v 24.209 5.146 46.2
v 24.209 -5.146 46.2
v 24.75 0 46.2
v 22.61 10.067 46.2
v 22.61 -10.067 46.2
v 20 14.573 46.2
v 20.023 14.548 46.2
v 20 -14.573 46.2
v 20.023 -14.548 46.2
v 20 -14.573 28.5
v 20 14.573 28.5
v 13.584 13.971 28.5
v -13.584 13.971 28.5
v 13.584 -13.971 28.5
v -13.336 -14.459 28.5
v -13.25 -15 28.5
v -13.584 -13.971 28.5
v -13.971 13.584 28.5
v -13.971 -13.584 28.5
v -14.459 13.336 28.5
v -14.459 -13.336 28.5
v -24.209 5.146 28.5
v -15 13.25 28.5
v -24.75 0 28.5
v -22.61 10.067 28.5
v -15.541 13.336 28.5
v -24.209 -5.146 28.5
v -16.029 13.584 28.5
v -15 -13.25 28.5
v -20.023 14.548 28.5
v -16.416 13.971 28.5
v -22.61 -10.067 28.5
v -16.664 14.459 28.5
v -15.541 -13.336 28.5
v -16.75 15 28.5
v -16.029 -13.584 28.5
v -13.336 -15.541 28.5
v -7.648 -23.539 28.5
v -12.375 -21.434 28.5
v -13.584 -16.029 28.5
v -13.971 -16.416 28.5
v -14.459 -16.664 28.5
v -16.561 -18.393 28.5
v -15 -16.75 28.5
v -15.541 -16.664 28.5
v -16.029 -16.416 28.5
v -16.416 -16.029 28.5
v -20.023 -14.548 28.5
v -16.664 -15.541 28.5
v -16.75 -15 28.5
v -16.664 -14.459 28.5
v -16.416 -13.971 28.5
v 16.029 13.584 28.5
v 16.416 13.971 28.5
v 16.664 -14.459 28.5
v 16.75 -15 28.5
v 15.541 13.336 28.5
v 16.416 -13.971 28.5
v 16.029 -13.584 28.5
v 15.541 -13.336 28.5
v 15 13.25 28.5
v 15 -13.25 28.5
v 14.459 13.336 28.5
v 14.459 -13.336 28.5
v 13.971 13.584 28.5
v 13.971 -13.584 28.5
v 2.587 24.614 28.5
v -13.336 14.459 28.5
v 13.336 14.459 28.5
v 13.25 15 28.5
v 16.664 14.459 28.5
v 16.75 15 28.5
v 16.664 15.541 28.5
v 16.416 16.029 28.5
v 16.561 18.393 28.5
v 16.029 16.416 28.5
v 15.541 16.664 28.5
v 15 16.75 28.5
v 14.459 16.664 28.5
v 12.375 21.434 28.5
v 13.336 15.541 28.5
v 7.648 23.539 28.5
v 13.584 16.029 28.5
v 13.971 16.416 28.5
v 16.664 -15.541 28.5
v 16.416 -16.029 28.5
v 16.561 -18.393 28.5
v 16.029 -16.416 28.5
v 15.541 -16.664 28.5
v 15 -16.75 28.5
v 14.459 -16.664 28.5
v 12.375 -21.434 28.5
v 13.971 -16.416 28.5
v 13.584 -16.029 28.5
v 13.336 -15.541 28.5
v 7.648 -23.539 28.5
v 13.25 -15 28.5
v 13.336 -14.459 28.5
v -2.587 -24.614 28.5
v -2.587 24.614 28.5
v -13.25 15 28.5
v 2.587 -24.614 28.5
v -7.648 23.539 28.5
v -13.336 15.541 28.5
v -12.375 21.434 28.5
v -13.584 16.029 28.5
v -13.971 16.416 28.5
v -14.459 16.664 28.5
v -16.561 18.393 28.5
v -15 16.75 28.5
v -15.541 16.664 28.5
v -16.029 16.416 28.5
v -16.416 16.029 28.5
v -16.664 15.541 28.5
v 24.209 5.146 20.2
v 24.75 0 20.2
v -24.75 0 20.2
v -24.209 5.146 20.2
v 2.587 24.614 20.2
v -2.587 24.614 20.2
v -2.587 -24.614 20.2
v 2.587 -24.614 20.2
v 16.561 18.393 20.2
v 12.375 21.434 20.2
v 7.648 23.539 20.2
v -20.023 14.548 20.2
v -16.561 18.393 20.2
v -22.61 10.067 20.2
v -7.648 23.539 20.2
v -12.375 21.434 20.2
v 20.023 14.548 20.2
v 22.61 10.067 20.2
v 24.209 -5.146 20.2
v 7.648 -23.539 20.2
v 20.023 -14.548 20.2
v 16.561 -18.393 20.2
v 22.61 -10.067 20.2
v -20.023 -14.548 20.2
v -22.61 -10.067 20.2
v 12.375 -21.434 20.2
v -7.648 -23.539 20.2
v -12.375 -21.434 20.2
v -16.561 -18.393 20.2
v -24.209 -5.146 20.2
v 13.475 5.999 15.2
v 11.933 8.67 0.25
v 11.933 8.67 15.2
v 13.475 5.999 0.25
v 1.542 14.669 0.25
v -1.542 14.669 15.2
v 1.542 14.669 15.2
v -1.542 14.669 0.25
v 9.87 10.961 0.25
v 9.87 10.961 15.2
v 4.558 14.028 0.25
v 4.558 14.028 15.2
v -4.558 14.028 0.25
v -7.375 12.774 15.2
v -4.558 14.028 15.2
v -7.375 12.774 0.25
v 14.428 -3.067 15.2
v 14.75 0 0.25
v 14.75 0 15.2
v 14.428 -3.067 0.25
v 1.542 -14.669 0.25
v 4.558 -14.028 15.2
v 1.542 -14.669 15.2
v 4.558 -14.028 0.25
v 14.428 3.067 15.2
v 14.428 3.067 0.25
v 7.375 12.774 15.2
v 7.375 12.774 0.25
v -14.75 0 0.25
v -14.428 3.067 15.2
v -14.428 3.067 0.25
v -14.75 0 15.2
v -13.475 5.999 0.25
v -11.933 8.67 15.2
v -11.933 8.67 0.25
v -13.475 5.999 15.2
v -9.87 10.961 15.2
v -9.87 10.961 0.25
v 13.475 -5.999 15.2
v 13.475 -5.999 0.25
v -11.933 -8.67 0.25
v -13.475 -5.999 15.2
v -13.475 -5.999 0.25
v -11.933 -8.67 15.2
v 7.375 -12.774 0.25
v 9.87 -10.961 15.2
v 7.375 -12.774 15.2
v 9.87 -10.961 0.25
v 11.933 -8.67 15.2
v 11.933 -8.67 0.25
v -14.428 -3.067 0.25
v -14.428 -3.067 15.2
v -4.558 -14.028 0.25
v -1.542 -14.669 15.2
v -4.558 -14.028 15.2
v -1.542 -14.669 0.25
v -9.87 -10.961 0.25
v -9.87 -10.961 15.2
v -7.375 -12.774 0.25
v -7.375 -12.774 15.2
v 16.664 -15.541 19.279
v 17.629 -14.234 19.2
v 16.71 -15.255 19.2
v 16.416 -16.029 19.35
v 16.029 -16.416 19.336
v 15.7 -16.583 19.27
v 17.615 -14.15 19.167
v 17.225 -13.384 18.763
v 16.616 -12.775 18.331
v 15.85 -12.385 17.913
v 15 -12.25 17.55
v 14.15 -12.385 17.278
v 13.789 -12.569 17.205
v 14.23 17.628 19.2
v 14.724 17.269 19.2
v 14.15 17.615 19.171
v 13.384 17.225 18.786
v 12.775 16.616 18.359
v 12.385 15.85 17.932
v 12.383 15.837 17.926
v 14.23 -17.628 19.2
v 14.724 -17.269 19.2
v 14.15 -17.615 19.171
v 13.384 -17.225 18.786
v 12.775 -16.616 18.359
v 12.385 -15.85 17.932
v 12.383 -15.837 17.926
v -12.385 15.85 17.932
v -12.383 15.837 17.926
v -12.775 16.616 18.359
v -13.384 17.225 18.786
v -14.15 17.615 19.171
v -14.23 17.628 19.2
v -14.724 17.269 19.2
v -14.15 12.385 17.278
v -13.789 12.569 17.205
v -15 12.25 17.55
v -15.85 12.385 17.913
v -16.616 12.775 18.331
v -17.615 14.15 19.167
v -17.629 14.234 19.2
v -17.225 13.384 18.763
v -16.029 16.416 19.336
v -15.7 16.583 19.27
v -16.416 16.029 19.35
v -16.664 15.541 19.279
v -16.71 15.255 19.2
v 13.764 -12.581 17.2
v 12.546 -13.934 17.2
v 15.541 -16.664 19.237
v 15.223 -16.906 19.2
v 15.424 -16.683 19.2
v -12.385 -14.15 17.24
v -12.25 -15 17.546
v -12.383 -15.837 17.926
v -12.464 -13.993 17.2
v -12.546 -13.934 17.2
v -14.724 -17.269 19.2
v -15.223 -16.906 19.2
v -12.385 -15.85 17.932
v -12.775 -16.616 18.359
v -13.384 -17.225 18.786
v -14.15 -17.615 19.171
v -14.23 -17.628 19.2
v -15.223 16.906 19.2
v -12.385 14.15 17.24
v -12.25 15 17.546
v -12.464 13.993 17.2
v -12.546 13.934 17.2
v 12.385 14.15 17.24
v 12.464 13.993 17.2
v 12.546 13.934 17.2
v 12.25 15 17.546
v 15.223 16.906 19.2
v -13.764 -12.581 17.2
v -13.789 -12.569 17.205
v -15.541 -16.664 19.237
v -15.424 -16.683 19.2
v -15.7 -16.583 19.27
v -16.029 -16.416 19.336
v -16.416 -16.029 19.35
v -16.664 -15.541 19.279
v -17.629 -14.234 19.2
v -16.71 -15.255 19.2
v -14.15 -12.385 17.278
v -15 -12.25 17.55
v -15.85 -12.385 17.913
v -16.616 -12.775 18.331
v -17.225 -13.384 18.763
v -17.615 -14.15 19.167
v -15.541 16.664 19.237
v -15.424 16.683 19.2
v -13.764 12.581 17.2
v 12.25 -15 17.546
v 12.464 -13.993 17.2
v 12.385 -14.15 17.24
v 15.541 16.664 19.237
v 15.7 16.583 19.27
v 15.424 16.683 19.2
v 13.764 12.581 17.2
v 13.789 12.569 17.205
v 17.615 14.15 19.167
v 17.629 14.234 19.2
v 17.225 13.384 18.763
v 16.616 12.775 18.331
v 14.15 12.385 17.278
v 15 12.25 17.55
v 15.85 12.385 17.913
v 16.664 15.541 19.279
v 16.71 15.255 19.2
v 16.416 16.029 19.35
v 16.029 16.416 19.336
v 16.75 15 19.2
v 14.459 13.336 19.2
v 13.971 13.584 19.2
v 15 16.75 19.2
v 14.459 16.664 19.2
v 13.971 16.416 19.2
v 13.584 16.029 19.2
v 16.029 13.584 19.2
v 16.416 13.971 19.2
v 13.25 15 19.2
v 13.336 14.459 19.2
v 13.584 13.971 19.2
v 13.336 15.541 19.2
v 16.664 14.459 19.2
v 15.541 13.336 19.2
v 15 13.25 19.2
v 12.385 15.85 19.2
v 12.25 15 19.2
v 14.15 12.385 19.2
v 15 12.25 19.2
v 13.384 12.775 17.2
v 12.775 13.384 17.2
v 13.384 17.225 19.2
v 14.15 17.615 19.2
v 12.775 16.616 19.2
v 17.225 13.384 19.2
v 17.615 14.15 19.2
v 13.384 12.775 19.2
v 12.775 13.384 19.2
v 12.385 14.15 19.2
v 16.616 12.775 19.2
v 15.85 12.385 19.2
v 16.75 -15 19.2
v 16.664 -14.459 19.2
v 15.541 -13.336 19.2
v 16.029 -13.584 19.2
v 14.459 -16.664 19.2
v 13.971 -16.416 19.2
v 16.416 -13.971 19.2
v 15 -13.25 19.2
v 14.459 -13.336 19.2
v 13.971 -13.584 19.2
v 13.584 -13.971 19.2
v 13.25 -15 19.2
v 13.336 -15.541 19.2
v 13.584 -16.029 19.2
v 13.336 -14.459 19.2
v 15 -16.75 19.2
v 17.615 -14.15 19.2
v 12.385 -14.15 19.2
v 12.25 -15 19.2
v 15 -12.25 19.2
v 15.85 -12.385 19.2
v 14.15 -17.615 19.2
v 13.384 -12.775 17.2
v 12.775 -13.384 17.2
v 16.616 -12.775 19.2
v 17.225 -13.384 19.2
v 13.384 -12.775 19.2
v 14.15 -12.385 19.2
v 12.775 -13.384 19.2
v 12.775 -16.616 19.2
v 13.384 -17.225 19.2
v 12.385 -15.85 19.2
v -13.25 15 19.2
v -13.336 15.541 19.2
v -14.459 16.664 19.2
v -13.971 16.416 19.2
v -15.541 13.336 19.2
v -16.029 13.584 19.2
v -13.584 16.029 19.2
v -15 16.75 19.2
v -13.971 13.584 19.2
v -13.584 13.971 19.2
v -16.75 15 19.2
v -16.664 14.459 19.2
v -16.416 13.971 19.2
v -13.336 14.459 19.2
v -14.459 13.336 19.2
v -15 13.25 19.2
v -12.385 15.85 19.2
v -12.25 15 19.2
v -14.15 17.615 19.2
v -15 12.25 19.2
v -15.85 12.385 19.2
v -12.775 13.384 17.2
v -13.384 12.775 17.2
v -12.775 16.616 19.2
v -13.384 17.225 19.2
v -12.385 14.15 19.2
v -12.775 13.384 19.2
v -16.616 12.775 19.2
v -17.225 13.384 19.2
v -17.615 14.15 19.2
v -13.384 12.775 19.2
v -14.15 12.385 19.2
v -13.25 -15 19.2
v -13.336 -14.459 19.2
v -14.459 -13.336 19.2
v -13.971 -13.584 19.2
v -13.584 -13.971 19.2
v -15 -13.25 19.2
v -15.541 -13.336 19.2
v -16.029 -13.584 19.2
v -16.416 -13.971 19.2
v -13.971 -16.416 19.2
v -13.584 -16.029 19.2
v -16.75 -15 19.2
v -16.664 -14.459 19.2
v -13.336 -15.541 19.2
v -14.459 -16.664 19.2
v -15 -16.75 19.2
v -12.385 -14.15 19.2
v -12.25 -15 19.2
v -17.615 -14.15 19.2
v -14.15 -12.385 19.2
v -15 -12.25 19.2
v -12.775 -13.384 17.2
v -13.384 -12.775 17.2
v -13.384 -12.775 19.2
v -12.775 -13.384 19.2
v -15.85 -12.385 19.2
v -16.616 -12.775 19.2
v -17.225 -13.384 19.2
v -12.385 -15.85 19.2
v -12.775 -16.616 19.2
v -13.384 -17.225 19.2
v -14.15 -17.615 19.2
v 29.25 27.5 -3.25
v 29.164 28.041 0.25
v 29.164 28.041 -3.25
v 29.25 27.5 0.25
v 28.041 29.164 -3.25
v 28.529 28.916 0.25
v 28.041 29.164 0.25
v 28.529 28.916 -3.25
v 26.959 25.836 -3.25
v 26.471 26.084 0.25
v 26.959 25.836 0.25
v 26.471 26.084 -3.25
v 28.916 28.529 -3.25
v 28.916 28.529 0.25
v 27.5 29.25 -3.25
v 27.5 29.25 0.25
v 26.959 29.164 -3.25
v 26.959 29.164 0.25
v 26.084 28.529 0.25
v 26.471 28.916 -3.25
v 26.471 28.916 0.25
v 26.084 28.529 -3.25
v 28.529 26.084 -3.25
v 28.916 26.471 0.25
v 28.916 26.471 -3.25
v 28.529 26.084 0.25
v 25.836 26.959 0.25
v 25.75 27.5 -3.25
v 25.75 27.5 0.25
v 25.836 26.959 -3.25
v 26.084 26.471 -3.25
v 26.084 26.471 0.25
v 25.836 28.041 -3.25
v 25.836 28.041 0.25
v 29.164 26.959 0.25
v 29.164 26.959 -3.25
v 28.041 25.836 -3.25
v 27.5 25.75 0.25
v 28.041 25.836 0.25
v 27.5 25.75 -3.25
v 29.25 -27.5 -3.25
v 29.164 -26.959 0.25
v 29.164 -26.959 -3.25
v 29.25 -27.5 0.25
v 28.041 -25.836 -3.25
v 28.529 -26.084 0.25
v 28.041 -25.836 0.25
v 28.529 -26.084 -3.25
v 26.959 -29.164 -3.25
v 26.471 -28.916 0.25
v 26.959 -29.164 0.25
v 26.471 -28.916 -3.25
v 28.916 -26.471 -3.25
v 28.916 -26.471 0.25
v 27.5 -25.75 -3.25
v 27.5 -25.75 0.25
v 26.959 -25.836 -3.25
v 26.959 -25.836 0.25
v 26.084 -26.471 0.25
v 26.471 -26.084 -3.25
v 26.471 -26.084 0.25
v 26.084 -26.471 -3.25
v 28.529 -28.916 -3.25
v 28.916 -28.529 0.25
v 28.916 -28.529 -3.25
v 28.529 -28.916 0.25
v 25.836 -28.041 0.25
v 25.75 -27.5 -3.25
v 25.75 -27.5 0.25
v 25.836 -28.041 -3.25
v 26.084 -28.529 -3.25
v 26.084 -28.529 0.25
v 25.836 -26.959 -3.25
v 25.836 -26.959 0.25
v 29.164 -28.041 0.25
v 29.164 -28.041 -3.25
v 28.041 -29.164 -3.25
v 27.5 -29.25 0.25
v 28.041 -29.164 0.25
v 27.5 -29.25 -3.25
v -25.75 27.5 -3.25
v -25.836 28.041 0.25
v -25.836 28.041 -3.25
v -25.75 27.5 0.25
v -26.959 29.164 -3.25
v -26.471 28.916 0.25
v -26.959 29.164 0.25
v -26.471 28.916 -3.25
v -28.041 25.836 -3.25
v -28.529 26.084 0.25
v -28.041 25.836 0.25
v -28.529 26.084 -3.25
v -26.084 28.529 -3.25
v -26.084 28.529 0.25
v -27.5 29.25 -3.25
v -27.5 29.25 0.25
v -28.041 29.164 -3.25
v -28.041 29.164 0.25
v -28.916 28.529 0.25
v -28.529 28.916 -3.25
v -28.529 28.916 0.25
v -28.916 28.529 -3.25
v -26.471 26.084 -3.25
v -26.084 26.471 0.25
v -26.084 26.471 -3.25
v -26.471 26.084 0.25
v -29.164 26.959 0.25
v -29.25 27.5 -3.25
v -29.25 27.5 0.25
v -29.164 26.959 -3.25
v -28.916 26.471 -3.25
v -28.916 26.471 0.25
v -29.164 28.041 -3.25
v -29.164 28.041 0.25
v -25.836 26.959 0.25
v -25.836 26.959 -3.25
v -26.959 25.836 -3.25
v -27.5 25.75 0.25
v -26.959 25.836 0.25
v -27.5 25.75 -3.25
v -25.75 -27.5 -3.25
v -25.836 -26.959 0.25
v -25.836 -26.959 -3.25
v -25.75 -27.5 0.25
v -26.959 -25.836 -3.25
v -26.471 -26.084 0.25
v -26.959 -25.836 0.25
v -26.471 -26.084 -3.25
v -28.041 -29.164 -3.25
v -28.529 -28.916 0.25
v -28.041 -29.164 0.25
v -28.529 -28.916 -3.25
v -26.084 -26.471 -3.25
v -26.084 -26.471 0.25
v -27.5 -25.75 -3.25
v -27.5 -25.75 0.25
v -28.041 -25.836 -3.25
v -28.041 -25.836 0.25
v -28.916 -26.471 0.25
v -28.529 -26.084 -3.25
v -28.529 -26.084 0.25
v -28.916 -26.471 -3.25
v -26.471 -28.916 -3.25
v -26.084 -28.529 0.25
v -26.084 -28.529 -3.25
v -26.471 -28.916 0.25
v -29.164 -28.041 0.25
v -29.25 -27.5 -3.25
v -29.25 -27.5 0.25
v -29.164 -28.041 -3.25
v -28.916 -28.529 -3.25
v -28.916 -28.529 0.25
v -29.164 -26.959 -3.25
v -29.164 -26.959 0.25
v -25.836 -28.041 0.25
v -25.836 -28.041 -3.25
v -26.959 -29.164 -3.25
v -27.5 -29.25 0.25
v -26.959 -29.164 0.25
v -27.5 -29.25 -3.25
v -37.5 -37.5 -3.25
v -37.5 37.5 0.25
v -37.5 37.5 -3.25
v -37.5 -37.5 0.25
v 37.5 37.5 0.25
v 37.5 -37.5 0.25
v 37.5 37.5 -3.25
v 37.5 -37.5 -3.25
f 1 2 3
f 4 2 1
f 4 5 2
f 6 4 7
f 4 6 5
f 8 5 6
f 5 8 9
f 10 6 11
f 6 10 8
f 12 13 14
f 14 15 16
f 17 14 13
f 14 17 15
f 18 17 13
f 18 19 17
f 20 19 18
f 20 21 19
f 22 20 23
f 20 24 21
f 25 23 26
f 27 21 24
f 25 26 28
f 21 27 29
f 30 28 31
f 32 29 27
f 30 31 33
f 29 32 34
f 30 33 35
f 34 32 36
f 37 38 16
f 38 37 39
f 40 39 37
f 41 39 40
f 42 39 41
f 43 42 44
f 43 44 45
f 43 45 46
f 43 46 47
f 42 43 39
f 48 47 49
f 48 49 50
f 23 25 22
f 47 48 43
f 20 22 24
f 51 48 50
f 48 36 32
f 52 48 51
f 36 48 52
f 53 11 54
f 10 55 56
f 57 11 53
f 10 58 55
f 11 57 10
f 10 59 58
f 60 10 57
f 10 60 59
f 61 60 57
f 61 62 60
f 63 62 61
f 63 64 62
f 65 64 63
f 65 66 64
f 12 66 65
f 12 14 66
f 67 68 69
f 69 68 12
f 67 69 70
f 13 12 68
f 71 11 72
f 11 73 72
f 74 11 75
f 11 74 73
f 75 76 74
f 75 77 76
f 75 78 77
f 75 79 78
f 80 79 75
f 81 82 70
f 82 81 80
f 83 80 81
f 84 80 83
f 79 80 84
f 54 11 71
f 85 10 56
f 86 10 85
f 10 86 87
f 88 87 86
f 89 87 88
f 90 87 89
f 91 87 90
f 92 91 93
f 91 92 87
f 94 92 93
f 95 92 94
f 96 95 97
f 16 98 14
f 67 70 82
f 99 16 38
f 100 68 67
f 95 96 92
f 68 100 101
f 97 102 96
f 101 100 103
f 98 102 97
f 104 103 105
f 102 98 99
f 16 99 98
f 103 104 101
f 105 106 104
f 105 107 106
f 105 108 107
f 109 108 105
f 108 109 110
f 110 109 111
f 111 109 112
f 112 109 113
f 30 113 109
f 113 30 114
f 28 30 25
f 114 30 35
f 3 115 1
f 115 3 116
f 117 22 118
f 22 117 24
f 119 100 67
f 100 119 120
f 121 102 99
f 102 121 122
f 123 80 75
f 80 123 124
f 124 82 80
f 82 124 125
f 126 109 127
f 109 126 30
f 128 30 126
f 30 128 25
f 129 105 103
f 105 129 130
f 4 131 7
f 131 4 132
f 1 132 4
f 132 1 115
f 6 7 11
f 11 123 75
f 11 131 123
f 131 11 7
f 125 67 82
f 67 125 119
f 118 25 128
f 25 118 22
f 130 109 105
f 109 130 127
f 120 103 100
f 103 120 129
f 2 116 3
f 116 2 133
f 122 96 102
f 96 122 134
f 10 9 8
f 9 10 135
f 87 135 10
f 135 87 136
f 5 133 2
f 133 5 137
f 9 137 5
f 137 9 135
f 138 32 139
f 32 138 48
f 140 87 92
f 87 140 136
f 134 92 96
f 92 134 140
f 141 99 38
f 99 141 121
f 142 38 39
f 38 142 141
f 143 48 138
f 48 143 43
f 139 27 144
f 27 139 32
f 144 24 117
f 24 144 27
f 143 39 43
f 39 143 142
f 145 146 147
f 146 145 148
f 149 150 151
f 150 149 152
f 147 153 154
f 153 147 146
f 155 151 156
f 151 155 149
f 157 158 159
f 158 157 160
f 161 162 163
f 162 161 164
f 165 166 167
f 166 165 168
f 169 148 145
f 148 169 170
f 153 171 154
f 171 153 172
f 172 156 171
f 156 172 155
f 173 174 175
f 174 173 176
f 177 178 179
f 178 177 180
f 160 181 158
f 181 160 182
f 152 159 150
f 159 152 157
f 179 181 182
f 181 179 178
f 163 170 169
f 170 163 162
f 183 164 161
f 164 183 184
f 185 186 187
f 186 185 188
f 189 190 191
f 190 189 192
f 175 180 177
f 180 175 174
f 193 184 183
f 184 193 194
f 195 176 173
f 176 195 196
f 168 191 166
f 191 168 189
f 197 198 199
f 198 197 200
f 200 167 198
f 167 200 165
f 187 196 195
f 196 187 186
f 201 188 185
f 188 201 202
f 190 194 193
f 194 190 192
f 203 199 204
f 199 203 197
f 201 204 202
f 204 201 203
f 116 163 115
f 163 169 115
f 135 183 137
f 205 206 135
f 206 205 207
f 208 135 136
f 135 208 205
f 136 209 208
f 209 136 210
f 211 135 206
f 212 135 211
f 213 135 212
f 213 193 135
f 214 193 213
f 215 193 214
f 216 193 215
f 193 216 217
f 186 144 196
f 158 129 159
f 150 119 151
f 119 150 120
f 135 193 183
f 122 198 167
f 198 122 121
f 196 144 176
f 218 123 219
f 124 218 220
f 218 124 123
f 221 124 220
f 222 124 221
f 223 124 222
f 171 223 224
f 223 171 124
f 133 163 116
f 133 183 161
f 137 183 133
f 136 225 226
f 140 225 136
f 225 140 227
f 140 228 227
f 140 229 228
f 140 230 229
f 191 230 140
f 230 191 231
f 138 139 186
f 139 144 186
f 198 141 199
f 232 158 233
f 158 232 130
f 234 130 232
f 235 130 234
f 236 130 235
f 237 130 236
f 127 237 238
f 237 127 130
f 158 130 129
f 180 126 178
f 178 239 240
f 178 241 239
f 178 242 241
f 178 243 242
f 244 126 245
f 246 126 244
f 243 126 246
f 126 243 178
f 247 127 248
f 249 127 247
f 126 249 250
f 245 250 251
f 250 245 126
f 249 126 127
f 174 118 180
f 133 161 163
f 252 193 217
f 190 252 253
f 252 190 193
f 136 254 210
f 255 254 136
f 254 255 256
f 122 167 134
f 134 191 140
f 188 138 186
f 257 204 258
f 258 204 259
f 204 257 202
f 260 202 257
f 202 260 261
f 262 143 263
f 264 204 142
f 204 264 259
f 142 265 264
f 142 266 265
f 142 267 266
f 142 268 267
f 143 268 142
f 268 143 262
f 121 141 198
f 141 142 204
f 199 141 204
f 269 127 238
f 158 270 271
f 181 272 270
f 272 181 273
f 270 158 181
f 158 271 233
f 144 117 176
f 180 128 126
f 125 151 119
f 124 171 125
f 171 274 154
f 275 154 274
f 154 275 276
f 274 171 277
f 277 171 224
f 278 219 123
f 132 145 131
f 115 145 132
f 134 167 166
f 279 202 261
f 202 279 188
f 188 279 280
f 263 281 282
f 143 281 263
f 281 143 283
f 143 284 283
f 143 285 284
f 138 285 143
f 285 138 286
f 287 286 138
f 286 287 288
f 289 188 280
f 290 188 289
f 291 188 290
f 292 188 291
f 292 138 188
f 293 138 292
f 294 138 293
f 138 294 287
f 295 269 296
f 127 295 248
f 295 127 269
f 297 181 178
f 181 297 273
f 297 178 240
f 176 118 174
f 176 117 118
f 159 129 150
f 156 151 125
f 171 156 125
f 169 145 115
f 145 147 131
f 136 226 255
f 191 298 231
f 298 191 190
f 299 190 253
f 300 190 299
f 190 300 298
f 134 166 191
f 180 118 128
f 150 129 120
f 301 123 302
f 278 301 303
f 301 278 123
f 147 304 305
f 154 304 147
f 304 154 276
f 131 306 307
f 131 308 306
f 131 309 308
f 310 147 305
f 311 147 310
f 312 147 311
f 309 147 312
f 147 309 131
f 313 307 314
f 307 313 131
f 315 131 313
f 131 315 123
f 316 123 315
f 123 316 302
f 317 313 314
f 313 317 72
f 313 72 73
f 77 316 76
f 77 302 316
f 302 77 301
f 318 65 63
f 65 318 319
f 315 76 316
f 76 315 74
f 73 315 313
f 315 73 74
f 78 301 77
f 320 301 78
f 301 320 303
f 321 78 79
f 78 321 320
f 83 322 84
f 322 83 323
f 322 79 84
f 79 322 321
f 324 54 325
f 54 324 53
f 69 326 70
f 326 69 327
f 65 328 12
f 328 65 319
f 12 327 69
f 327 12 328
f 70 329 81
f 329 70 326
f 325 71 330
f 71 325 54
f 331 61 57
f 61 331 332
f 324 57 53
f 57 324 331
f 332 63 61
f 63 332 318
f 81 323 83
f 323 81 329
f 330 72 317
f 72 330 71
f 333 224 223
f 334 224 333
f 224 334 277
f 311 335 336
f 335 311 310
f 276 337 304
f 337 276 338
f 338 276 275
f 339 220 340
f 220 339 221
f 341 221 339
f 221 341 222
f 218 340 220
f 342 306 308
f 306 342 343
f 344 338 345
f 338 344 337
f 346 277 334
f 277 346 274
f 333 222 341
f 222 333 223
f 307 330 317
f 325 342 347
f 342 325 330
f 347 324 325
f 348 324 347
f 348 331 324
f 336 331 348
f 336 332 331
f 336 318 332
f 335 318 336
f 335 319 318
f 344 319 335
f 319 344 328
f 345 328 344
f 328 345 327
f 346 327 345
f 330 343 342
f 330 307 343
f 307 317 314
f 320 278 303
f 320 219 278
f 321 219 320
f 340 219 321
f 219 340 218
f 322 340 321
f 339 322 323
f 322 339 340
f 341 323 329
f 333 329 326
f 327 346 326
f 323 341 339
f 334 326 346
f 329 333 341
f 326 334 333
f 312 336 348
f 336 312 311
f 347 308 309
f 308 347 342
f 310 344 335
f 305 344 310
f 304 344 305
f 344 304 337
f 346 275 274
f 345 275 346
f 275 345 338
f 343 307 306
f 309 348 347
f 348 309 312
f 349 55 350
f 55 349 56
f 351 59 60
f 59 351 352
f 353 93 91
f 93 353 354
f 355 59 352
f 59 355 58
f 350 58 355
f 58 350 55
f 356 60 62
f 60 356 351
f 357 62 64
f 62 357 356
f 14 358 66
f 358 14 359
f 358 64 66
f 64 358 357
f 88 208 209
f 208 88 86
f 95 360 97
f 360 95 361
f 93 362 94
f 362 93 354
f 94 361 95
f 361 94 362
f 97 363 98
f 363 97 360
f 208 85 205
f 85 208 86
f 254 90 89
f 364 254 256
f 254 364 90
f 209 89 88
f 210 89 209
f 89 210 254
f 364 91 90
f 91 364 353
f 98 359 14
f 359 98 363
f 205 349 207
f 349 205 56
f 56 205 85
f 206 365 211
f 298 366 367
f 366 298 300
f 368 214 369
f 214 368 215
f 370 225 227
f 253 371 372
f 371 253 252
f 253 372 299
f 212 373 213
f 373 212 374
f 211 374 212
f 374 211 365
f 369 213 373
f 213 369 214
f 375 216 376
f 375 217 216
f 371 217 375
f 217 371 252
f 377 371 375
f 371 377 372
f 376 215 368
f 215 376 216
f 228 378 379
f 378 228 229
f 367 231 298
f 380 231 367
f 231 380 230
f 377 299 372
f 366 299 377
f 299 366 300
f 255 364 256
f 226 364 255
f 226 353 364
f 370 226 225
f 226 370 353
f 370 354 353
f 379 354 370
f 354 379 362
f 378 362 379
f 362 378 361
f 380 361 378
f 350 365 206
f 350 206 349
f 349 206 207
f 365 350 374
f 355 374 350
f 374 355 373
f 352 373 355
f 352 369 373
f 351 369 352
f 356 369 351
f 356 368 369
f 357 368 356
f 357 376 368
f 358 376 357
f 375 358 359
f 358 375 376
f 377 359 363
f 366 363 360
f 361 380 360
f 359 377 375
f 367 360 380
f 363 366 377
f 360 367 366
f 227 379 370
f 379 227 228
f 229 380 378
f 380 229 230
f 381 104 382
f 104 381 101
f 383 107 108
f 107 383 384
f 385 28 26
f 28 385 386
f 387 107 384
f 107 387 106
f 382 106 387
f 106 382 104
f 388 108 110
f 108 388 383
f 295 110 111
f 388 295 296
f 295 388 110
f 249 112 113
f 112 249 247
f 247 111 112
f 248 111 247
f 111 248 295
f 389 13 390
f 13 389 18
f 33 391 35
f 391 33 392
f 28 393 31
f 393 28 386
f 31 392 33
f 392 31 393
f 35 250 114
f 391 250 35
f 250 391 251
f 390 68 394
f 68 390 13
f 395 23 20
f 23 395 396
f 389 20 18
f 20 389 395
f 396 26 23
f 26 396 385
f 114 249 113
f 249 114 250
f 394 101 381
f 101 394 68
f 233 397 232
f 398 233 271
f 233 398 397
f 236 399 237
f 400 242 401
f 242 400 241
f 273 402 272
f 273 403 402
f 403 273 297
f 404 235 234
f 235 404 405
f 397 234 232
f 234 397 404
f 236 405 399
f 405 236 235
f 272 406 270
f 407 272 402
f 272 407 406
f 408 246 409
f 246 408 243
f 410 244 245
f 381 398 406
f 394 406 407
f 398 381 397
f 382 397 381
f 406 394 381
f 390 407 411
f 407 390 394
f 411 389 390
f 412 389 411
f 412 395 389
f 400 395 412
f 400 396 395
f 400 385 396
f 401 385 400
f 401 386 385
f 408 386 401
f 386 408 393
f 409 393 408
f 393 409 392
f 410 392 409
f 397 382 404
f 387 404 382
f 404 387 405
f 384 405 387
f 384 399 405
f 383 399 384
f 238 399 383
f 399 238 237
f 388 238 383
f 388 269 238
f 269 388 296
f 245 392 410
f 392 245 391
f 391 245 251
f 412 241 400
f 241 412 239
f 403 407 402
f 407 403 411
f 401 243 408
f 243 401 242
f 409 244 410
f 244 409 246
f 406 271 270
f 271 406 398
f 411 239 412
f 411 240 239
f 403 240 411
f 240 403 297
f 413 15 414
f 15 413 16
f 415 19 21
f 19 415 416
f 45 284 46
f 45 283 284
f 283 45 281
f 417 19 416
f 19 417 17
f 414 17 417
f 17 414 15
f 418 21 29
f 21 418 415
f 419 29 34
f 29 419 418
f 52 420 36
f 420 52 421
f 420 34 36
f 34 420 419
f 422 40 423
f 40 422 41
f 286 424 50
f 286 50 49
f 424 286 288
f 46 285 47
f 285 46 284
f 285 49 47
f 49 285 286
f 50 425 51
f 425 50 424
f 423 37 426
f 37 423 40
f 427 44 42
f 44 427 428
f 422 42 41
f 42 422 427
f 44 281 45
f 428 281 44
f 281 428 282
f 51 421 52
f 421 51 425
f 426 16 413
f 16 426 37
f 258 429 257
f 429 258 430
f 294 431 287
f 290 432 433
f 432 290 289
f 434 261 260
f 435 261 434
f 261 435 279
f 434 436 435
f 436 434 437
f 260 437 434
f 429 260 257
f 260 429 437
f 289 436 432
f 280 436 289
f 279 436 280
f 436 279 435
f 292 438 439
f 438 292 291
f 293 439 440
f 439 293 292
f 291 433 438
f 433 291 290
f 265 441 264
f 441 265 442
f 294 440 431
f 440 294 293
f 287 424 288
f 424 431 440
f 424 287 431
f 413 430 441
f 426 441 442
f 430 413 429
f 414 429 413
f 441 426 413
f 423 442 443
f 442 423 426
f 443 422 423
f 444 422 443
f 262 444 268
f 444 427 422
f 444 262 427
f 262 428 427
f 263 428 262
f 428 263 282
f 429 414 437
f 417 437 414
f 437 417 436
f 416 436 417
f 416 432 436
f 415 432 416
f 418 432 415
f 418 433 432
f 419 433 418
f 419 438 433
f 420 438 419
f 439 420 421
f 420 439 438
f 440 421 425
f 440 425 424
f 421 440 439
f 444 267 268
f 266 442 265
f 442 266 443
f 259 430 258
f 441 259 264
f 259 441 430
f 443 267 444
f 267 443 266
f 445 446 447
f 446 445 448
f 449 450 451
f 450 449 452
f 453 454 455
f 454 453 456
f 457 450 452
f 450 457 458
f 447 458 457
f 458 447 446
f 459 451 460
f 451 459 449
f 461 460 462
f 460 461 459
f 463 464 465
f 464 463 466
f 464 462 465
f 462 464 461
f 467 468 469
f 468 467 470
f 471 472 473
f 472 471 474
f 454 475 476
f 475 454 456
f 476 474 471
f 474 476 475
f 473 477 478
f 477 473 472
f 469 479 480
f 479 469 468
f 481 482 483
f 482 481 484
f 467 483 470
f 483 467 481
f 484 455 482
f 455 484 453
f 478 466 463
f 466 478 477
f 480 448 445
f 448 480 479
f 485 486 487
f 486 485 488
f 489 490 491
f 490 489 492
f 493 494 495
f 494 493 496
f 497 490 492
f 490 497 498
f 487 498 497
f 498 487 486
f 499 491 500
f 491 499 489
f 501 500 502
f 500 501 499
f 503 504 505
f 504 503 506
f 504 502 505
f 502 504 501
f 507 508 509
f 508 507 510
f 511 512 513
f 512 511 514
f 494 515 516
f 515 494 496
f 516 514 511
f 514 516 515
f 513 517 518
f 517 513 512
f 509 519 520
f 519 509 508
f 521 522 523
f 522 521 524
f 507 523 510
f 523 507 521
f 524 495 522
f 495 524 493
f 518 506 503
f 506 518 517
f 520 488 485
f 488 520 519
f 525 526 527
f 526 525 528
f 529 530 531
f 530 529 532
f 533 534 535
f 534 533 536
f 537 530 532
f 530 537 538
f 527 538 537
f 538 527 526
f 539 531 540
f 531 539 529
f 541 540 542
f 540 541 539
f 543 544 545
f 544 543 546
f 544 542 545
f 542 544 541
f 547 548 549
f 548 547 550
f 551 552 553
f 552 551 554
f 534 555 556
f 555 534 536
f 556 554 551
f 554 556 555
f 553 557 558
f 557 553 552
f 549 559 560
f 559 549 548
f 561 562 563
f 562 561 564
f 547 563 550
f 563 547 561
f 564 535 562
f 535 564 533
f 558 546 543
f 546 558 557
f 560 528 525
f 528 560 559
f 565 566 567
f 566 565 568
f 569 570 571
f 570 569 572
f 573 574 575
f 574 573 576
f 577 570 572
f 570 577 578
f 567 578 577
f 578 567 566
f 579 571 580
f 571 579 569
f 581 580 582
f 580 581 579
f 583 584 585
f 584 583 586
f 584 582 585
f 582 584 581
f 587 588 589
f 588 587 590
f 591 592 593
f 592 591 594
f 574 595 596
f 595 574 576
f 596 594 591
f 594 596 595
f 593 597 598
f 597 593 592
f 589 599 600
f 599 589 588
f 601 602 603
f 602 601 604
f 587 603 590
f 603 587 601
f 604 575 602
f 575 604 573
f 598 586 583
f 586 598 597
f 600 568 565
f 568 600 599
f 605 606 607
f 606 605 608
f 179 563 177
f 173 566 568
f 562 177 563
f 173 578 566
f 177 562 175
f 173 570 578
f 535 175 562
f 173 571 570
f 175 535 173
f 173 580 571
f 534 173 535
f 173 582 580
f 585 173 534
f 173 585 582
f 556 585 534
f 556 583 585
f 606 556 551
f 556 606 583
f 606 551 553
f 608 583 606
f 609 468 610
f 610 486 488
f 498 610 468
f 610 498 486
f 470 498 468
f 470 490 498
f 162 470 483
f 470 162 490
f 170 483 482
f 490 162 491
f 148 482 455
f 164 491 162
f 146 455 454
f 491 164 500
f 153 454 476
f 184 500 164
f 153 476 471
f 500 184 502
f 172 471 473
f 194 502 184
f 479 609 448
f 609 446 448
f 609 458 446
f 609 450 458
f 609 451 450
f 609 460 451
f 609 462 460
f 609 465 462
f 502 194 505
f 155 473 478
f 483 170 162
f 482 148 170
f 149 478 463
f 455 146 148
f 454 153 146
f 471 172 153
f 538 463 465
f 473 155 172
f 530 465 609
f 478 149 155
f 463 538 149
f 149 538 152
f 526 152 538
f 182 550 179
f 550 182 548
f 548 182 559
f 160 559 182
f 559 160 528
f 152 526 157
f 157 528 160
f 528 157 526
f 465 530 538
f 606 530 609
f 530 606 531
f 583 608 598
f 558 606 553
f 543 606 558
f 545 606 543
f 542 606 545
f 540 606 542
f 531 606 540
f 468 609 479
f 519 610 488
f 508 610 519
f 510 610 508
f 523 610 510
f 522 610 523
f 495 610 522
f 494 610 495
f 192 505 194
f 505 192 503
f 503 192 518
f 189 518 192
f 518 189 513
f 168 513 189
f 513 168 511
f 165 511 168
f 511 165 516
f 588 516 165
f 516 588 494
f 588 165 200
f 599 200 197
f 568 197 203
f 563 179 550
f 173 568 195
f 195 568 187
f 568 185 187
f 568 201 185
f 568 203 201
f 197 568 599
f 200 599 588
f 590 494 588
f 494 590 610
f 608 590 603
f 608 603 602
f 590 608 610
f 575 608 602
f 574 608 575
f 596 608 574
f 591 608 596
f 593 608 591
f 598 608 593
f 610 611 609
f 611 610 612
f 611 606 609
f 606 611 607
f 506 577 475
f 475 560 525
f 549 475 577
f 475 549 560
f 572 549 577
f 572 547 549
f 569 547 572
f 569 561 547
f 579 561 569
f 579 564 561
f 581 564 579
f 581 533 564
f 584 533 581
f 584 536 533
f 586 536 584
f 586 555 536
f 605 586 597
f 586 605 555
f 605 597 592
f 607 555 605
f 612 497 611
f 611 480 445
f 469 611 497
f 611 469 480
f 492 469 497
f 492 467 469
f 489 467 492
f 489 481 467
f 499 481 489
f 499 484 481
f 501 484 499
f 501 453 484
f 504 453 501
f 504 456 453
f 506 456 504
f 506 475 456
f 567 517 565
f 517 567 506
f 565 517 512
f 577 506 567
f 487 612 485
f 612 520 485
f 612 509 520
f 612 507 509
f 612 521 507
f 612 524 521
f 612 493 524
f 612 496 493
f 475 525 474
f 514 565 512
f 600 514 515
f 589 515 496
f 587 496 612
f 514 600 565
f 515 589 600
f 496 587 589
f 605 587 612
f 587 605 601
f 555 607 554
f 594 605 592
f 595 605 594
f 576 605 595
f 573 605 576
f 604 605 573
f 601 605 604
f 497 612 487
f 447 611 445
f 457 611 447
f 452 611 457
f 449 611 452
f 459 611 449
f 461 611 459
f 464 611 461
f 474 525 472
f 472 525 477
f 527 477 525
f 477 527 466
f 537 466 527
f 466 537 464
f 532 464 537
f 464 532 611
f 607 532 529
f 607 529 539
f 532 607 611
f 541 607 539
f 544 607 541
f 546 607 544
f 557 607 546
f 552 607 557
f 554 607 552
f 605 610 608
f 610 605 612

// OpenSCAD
//constants
eps = 0.5;

// measurements
abstand_abzugskoerper = 17.5 +1.7 - 1.5;
zylinder_durchmesser = 50-eps;// größer als lochplatine, damit Stütze da ist
zylinder_hoehe = 47.9;

module bodenplatte (laenge =75, hoehe=3+eps) {
    difference (){
        color ("blue") cube ([laenge,laenge,hoehe], center = true);
#       translate ([75/2-10,75/2-10, -5]) M3Schraube();
#       translate ([75/2-10,-(75/2-10), -5]) M3Schraube();
#       translate ([-(75/2-10),(75/2-10), -5]) M3Schraube();
#       translate ([-(75/2-10),-(75/2-10), -5]) M3Schraube();        
    }
}
module zylinder_oben (durchmesser = zylinder_durchmesser , hoehe = abstand_abzugskoerper + 10) {
    cylinder (d=durchmesser, h= hoehe-eps);
}


module halterung(){
    difference (){
        union () {
            translate ([0,0, zylinder_hoehe - abstand_abzugskoerper - 10]) zylinder_oben();
            cylinder (d=zylinder_durchmesser-20, h=zylinder_hoehe-eps);
            translate ([0,0, zylinder_hoehe - abstand_abzugskoerper - 15]) cylinder (d1=zylinder_durchmesser-20, d2=zylinder_durchmesser, h=5);            
        }
#       translate ([-30,-49.5/2,zylinder_hoehe-+(abstand_abzugskoerper+1.7)]) abzugskoerper();
#       translate ([15,15, zylinder_hoehe - abstand_abzugskoerper - 15+2]) M3Schraube();
#       translate ([15,-15, zylinder_hoehe - abstand_abzugskoerper - 15+2]) M3Schraube();
#       translate ([-15,15, zylinder_hoehe - abstand_abzugskoerper - 15+2]) M3Schraube();
#       translate ([-15,-15, zylinder_hoehe - abstand_abzugskoerper - 15+2]) M3Schraube();
    }
}
//bodies for substraction
module abzugskoerper () {
    color ("red") union(){
        translate ([0,0,abstand_abzugskoerper]) RFIDreader ();
        translate ([50/2-35/2,49.5/2-26/2,5]) esp201();
        linear_extrude(height = abstand_abzugskoerper+eps) projection () Lochplatine ();    
    }
}
module M3Schraube (laenge= 18, durchmesser = 3+eps, kopfTiefe= 2, kopfDurchmesser= 5.5){
    translate ([0,0,kopfTiefe-eps]) color ("grey") cylinder (h= laenge+eps, d= durchmesser, $fn=20);
    color ("grey") cylinder (h =kopfTiefe, d=kopfDurchmesser, $fn=20);
}
module RFIDreader (laenge= 60-5, breite= 49.5, tiefe=1.5){ // -5 weil Auflagefläche auf dem Aufsatz
    color ("green") cube ([laenge, breite, tiefe]);
}

module Lochplatine (laenge= 50, breite= 49.5, tiefe=1.7){ // sollte länger als der ESP sein, damit die schrauben noch reinkönnen
    color ("orange") cube ([laenge, breite, tiefe]);
}

module esp201 (laenge= 35, breite= 26, tiefe=4) { 
    color ("white") cube ([laenge,breite, tiefe]);
}
    


halterung();
translate ([0,0,-1.5]) bodenplatte ();
